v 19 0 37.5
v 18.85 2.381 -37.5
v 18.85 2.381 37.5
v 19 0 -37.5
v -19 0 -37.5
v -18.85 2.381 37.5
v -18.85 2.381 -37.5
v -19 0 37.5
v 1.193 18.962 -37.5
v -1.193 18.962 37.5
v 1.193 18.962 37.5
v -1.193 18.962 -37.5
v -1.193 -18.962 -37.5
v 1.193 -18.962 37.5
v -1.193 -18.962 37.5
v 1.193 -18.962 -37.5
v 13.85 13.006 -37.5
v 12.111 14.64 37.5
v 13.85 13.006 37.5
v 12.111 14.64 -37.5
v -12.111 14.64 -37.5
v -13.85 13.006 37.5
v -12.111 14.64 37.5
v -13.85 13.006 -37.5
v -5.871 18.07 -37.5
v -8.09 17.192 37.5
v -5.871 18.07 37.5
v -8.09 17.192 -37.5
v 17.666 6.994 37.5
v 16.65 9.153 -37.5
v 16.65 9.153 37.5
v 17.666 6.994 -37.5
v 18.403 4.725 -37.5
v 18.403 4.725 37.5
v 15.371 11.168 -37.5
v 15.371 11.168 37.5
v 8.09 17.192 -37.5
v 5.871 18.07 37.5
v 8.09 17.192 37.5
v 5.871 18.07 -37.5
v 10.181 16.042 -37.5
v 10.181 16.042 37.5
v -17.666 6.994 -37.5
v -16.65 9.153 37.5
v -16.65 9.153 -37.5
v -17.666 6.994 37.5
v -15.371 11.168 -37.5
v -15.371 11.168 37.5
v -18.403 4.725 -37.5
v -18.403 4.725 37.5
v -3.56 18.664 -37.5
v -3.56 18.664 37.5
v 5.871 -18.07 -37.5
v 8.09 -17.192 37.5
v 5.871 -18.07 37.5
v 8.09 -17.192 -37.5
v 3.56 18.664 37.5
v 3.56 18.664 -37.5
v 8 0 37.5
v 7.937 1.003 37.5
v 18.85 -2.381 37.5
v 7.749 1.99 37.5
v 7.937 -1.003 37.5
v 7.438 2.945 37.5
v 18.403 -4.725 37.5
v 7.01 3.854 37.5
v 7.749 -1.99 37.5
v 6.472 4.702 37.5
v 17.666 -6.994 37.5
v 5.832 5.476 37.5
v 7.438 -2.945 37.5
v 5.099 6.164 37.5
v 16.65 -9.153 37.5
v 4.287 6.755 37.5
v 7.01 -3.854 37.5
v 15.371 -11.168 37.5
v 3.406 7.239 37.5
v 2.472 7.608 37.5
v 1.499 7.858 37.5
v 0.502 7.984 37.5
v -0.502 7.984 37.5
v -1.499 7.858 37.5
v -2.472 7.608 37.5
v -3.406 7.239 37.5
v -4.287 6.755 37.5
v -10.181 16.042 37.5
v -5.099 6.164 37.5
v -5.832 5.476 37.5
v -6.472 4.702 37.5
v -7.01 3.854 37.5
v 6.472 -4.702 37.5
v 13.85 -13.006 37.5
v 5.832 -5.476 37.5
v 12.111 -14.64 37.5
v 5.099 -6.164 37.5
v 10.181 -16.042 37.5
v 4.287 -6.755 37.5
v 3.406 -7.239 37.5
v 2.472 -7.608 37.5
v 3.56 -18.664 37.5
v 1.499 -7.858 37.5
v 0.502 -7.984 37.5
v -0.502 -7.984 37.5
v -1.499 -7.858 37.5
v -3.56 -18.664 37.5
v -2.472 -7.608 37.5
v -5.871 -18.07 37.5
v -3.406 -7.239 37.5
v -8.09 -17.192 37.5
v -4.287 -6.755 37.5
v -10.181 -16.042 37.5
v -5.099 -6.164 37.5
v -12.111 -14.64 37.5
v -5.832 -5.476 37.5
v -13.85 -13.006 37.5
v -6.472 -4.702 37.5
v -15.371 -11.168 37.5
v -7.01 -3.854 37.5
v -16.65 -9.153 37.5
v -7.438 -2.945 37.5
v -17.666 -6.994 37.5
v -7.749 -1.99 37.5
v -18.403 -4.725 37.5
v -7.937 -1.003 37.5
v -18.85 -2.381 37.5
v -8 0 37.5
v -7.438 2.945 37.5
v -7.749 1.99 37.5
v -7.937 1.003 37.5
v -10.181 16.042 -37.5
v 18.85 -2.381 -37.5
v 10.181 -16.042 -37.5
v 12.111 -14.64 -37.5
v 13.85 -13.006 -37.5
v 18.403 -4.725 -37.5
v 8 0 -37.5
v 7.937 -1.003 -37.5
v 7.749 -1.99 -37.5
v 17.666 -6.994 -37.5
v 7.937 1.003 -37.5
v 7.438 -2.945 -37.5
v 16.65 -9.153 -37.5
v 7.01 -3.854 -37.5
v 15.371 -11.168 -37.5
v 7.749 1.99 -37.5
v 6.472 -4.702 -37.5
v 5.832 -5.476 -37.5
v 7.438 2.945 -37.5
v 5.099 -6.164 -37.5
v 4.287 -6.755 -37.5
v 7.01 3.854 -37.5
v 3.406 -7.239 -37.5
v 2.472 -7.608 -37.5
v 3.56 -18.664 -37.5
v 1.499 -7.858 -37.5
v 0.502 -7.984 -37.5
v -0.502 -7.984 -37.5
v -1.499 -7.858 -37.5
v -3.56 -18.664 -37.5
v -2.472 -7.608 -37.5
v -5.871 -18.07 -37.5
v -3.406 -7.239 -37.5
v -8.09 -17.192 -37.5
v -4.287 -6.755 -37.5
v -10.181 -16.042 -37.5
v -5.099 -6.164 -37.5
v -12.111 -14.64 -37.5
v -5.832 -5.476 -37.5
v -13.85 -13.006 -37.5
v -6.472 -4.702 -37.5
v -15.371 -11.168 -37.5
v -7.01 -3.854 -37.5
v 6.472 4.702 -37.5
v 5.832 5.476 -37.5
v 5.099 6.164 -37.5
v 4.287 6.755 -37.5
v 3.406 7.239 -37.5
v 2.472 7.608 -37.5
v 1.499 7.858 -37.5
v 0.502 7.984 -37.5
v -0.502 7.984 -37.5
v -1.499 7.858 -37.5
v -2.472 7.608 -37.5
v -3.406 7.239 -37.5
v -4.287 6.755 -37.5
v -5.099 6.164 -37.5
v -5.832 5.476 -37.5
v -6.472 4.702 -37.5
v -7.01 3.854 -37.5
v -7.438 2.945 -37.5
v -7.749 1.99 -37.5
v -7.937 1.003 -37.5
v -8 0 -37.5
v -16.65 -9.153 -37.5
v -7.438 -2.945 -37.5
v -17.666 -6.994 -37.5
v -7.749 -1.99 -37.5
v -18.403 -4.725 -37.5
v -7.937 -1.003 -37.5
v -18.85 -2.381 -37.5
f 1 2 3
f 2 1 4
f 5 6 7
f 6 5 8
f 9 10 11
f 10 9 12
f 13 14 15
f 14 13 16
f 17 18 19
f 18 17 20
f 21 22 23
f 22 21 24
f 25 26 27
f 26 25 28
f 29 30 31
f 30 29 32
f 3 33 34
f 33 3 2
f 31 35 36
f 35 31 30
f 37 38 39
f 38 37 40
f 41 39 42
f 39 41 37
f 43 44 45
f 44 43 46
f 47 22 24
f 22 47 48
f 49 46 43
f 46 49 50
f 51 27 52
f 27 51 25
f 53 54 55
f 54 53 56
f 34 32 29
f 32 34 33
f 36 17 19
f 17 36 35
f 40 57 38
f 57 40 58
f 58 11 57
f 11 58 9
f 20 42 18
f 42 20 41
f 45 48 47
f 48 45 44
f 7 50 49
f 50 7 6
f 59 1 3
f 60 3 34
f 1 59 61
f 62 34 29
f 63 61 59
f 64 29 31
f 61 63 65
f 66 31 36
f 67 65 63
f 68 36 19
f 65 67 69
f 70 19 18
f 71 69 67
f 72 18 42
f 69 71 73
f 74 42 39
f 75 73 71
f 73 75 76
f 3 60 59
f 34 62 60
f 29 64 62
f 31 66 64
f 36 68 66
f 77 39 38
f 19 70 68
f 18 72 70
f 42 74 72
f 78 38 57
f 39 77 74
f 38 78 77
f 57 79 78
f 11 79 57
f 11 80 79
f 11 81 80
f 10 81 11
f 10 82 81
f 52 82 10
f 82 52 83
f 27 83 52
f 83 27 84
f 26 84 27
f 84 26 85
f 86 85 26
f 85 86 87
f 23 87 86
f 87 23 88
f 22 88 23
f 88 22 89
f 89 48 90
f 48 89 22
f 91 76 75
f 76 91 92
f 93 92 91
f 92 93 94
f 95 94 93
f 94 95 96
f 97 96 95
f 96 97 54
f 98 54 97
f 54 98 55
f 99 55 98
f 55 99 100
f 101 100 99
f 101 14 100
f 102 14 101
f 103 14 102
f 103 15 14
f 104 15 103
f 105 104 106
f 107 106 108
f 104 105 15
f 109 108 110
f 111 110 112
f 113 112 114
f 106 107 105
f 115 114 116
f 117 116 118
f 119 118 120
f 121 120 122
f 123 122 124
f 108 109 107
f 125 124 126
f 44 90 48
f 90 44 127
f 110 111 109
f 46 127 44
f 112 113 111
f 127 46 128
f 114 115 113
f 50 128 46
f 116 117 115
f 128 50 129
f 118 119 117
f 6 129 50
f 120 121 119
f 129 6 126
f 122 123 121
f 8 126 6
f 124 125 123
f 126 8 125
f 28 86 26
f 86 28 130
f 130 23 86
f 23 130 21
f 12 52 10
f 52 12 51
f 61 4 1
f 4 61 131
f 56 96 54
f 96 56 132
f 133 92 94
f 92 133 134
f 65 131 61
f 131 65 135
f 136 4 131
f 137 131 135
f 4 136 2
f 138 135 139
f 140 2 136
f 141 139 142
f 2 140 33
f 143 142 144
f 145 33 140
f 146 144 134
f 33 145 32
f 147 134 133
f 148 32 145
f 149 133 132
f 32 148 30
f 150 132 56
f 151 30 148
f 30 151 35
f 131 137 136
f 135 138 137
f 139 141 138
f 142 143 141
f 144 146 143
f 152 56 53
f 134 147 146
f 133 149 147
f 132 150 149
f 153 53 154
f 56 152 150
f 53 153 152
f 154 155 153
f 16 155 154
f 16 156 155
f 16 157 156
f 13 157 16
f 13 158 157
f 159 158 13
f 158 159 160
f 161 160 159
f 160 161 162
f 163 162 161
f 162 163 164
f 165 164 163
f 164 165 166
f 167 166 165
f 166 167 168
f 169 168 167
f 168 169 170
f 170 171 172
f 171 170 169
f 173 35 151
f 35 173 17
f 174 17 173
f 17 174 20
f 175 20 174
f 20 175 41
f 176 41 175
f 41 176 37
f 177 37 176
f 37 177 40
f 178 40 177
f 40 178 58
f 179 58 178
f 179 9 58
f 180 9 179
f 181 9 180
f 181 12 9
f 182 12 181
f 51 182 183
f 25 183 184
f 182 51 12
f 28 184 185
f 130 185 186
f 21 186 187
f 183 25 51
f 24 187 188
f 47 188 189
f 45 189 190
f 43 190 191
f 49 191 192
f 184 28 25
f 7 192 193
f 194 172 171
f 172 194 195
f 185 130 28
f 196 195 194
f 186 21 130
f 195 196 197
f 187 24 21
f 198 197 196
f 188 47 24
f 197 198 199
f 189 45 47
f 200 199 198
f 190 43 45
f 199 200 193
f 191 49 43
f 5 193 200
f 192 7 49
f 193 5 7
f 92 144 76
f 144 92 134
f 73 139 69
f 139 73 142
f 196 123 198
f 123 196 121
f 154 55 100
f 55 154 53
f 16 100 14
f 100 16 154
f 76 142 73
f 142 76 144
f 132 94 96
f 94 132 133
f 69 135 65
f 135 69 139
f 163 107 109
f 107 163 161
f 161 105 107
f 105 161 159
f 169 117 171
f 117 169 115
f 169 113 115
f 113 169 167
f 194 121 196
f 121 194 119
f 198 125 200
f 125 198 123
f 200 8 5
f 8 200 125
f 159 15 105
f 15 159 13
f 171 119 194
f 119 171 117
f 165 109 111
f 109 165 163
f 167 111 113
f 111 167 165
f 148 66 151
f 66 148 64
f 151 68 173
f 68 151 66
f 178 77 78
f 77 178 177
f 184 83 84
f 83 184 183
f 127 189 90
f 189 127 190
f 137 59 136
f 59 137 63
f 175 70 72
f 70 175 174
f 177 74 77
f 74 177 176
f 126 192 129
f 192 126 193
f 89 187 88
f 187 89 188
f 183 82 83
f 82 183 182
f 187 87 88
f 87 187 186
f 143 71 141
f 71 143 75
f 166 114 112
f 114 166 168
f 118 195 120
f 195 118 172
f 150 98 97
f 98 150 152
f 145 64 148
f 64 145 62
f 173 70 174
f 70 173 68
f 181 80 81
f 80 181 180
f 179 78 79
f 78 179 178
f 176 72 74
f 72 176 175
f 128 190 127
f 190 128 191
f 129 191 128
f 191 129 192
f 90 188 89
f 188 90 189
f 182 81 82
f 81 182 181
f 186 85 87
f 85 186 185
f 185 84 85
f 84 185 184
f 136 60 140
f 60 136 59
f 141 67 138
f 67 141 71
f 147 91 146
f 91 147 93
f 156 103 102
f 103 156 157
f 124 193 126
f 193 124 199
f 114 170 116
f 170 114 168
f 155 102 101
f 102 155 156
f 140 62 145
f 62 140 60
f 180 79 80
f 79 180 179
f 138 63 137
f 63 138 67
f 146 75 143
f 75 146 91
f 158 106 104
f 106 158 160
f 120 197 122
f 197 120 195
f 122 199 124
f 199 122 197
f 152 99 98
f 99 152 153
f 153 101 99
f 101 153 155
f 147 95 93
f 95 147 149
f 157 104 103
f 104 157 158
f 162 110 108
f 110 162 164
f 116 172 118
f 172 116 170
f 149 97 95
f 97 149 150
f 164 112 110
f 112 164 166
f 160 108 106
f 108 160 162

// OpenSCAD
$fn = 50;


difference() {
	union() {
		translate(v = [0, 0, -37.5000000000]) {
			cylinder(h = 75, r = 19.0000000000);
		}
	}
	union() {
		translate(v = [0, 0, -100.0000000000]) {
			cylinder(h = 200, r = 8);
		}
	}
}
